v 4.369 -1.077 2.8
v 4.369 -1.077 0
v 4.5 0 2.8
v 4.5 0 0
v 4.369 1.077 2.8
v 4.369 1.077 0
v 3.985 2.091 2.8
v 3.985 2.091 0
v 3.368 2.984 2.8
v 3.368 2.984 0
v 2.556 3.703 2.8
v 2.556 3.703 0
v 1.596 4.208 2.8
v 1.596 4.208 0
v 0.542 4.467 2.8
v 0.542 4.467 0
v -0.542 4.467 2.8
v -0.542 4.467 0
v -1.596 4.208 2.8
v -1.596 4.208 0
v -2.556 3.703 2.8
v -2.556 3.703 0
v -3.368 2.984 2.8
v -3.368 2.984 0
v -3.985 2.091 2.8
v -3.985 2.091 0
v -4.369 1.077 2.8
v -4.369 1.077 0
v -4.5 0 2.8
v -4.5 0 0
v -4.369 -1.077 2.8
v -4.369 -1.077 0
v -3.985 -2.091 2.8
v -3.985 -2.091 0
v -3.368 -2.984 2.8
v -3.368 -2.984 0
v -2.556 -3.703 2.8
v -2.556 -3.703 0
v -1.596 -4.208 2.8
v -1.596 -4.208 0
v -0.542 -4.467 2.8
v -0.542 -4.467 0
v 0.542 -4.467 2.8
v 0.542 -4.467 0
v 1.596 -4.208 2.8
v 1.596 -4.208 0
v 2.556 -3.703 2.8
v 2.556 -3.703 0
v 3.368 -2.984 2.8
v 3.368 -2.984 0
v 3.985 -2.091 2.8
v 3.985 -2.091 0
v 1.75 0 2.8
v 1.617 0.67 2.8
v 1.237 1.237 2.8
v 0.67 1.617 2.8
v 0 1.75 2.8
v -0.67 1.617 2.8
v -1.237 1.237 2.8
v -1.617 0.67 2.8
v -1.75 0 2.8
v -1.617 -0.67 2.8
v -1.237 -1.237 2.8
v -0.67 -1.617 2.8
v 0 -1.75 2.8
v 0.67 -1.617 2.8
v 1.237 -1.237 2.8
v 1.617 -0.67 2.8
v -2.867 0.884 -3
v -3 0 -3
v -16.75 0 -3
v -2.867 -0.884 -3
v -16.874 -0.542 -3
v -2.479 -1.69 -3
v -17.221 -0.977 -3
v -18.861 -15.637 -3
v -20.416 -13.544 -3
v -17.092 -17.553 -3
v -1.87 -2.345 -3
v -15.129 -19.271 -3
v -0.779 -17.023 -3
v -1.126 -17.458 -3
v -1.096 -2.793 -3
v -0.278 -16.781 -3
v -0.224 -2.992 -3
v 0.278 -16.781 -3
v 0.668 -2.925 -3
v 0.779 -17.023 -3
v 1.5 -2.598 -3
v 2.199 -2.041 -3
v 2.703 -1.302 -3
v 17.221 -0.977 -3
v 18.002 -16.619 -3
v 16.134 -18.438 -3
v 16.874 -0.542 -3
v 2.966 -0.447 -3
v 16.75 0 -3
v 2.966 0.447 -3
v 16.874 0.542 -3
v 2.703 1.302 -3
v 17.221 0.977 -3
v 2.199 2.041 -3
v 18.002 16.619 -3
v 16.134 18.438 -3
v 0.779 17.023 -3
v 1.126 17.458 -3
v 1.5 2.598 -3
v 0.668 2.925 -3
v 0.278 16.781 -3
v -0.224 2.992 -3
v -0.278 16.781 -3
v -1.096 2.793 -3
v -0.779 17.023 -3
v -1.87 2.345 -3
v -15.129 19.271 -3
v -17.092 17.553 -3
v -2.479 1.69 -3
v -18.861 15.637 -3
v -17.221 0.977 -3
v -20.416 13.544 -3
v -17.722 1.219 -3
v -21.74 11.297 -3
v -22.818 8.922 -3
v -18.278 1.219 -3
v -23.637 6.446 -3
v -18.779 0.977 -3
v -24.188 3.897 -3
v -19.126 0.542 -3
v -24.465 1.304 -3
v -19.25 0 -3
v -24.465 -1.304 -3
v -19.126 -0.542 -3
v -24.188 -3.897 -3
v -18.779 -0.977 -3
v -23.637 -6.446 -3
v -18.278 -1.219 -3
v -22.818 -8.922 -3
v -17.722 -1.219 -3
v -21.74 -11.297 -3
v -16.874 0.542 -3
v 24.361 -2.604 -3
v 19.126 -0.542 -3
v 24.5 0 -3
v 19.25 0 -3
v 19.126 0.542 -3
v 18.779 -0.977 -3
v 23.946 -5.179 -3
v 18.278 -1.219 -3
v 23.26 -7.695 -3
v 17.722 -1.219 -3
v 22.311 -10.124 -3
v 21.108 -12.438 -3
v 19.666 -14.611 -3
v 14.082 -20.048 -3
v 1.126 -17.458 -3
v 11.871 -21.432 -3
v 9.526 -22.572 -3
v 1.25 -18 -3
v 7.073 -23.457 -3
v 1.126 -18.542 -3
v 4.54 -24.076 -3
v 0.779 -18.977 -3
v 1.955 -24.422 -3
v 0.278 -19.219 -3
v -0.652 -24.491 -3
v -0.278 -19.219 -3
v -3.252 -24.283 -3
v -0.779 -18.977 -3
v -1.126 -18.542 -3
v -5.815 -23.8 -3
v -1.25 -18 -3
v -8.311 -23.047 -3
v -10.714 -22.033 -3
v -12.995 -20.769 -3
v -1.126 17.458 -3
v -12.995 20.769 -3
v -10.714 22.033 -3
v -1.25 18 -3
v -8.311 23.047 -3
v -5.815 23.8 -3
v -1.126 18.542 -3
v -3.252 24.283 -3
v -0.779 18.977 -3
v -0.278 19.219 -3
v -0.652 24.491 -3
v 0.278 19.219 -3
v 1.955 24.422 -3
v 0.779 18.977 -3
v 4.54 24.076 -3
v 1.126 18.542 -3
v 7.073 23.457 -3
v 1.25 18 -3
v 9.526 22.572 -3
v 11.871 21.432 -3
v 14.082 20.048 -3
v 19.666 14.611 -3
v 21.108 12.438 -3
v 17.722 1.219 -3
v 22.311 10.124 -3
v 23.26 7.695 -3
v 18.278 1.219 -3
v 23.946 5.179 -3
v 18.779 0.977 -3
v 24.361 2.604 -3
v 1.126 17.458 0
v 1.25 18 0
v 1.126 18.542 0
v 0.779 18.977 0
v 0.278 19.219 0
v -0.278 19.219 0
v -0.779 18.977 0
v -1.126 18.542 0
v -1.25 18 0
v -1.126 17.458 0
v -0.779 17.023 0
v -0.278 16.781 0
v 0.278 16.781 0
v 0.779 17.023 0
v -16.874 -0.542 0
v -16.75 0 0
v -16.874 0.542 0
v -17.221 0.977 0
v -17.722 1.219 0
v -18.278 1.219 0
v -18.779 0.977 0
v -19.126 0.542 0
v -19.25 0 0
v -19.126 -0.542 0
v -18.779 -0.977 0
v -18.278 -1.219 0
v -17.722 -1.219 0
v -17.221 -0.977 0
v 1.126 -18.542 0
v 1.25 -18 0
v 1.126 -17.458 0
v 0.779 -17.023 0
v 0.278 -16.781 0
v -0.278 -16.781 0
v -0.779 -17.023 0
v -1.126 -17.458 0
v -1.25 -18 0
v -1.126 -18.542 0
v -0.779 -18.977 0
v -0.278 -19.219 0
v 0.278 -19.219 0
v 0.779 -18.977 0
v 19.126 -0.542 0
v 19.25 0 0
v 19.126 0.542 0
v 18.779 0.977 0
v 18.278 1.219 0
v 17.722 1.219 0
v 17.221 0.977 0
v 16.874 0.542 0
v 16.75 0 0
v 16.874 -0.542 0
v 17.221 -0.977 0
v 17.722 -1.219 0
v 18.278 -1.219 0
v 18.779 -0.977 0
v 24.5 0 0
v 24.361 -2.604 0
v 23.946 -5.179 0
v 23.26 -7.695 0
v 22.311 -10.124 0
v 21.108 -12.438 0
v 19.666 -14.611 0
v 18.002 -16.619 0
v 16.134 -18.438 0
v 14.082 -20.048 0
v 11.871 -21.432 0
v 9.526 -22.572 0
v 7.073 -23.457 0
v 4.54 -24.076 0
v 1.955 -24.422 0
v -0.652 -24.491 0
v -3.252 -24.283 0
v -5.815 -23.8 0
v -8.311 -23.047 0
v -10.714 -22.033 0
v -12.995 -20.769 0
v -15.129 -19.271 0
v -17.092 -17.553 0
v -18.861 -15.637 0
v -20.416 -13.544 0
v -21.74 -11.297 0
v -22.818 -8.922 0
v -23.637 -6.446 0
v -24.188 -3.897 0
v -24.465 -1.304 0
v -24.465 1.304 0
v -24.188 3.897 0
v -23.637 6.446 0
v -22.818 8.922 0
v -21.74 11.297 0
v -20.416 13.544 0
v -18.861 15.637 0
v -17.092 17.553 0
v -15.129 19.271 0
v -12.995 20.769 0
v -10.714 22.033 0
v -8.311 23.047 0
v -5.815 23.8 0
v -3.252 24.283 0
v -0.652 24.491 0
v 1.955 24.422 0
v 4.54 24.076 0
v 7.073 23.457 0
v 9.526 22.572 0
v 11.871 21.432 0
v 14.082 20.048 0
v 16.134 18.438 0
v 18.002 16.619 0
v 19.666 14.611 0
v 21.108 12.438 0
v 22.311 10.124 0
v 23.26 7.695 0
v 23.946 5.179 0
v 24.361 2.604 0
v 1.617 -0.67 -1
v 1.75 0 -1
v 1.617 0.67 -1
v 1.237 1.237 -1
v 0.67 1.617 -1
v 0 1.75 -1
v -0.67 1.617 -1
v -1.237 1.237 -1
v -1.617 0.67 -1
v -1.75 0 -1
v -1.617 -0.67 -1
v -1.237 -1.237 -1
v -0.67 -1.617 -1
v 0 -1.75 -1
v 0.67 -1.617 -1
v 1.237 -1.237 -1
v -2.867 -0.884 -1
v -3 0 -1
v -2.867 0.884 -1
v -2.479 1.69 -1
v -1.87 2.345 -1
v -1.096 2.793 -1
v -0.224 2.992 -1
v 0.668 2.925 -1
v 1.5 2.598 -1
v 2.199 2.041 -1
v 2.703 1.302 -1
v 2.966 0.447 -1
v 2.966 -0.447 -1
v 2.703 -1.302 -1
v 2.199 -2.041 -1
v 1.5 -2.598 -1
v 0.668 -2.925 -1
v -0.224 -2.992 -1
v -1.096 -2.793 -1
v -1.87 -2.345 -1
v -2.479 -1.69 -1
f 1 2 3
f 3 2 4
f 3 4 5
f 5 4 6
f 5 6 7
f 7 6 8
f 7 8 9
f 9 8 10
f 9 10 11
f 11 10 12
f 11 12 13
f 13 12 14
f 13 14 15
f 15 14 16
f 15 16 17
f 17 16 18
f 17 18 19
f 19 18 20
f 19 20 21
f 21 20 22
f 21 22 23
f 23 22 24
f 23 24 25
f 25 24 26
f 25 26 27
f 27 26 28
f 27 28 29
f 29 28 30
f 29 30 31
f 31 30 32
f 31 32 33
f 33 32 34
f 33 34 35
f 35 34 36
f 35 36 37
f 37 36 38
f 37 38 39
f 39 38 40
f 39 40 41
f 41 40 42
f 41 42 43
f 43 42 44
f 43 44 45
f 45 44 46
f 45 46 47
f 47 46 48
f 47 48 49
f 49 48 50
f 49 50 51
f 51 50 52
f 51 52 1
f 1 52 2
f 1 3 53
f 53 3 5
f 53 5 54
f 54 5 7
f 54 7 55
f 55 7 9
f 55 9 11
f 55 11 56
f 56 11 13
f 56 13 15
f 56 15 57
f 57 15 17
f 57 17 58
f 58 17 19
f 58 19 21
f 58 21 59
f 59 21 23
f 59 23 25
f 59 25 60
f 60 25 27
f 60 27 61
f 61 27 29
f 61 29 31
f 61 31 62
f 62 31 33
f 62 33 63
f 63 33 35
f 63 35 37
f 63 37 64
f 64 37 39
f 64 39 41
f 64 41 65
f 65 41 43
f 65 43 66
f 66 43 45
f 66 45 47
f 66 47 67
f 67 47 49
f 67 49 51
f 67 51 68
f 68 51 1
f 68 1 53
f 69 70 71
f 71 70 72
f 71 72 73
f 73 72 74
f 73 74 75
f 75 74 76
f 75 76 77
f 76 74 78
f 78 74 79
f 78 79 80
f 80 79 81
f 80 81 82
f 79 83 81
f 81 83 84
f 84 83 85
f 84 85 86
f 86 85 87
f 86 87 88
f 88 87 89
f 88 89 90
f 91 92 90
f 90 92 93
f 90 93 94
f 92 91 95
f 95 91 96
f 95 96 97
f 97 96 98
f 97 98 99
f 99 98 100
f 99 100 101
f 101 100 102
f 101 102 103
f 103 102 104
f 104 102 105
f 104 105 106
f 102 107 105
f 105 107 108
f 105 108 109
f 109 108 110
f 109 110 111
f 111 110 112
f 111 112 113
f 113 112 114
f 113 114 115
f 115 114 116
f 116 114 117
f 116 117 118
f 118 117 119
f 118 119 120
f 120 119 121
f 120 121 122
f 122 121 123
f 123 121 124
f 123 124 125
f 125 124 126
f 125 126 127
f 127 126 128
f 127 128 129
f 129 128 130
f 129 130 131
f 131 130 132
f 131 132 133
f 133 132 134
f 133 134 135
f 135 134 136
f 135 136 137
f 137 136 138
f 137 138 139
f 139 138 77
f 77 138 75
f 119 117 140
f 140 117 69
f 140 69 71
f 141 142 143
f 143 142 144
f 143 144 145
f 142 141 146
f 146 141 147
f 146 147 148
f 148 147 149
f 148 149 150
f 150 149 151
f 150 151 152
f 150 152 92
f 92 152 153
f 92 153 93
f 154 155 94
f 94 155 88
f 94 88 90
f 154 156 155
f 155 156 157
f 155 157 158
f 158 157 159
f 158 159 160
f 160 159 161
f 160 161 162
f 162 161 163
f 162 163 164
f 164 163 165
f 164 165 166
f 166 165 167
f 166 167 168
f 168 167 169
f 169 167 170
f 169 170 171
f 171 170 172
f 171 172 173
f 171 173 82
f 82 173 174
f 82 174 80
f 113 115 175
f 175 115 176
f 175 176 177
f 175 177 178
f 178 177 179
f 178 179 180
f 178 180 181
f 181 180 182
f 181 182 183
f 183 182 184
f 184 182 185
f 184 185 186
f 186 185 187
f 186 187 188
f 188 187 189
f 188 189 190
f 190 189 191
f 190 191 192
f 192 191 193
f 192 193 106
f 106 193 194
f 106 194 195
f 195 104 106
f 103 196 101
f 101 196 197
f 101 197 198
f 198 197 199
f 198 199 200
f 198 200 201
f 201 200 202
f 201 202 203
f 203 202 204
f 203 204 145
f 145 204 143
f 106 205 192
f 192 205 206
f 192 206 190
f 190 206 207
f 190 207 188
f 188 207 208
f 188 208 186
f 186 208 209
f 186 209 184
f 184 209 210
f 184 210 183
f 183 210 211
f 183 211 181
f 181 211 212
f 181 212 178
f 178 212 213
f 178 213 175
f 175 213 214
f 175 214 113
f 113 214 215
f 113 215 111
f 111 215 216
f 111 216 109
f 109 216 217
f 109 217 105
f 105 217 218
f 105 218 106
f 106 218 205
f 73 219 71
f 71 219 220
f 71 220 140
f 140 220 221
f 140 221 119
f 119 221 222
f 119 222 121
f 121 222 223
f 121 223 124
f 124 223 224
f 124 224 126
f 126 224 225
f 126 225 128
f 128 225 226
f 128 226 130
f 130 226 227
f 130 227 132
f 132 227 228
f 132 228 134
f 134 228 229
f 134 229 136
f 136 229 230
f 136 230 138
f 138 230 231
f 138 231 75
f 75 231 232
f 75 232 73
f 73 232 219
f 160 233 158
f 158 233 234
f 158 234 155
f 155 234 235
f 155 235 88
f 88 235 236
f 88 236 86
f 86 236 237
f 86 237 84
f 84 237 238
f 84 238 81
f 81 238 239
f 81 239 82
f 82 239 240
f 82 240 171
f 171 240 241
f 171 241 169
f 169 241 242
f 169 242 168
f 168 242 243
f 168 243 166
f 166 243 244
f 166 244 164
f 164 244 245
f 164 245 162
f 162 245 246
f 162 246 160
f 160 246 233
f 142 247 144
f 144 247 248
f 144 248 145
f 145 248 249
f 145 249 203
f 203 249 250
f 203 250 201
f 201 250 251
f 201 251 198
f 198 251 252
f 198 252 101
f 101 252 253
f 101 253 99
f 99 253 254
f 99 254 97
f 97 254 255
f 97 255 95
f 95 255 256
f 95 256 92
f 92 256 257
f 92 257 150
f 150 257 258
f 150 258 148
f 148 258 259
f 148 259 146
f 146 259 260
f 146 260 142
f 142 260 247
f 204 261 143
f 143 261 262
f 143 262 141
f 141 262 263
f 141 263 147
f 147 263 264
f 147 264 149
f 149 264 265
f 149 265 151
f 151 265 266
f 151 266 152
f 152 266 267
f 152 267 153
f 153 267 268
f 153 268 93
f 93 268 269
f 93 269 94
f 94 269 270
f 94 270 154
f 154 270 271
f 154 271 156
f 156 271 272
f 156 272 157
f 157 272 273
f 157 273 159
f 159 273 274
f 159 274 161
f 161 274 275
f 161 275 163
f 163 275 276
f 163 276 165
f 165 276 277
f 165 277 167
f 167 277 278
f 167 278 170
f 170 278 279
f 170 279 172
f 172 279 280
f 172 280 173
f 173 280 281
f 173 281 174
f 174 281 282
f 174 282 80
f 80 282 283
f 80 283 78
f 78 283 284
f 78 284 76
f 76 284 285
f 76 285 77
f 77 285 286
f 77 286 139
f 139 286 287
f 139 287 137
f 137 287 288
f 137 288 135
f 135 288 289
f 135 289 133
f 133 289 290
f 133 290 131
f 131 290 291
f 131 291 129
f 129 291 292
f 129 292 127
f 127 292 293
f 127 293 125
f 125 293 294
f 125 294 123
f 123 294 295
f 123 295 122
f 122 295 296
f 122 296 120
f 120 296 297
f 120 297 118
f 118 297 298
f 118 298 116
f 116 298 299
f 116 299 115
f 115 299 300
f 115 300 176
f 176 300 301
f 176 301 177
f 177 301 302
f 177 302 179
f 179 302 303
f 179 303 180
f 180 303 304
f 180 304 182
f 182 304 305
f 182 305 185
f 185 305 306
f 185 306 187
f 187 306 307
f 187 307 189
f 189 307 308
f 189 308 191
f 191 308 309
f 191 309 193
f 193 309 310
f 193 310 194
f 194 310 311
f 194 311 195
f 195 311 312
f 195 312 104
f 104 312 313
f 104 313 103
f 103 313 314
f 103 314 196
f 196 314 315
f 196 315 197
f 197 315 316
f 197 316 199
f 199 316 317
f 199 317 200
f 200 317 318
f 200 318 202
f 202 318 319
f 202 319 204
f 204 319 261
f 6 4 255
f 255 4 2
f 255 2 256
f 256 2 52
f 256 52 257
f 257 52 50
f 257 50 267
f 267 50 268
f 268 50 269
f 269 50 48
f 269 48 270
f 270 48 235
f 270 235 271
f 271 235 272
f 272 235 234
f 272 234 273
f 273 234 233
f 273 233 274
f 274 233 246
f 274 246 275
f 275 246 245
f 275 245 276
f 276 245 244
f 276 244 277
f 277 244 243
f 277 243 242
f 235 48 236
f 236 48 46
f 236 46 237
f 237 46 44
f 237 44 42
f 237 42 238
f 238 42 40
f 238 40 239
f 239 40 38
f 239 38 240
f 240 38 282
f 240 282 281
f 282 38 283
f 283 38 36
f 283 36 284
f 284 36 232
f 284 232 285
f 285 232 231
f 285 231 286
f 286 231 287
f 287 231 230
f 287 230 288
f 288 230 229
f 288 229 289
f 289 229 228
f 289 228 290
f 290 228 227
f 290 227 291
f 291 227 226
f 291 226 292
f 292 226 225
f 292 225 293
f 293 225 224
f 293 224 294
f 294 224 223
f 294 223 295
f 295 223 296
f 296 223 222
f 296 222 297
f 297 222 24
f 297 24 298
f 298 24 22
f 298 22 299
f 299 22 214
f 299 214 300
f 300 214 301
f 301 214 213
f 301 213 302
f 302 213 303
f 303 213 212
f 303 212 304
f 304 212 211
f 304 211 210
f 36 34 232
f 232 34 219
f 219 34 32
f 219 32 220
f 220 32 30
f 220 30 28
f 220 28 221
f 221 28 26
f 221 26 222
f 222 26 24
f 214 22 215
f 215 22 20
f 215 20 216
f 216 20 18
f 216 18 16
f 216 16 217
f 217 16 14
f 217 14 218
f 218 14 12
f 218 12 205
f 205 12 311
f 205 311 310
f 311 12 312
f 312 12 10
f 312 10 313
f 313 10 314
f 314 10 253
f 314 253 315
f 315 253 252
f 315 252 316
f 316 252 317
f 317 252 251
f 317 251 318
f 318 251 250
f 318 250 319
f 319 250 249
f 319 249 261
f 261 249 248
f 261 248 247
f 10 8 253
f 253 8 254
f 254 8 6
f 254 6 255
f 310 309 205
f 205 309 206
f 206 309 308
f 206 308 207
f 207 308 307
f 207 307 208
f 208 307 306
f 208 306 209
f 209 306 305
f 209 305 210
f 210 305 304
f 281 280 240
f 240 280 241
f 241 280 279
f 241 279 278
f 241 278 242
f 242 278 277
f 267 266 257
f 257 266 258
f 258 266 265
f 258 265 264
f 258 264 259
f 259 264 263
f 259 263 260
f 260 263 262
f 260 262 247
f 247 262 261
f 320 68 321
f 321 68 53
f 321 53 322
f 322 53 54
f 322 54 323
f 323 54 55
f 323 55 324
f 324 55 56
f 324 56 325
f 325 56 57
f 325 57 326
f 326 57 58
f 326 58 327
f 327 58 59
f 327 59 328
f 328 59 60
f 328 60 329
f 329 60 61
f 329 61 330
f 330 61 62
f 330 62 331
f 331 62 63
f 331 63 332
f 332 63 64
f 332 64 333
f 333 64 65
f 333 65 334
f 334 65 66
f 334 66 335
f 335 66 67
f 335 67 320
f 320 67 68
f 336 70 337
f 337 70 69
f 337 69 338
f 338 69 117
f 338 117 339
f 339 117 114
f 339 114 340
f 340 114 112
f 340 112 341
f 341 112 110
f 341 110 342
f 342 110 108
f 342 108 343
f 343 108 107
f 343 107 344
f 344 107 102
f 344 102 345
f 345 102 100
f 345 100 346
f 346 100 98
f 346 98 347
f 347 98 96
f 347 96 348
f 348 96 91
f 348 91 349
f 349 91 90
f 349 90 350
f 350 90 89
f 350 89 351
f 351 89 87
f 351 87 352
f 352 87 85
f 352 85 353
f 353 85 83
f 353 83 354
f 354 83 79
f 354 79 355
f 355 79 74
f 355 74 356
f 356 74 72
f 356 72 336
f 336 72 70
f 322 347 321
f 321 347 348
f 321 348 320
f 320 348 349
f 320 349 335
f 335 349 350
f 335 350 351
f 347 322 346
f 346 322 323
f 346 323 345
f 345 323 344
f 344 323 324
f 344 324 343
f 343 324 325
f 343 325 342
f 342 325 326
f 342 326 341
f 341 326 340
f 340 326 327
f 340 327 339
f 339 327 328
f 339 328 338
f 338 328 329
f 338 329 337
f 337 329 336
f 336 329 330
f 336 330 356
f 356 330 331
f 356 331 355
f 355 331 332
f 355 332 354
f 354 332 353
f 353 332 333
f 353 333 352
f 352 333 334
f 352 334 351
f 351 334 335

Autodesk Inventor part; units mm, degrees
ref_plane "YZ Plane" through (0, 0, 0) normal (1, 0, 0) x (0, 1, 0)
ref_plane "XZ Plane" through (0, 0, 0) normal (0, 1, 0) x (-1, 0, 0)
ref_plane "XY Plane" through (0, 0, 0) normal (0, 0, 1) x (1, 0, 0)
sketch "스케치1" plane through (0, 0, 0) normal (0, 0, 1) x (1, 0, 0)
  circle A0 centre (0, 0) radius 24.5
  circle A1 centre (0, 0) radius 4.5
  circle A2 centre (0, 0) radius 1.75
  circle A3 centre (0, 18) radius 1.25
  circle A4 centre (-18, 0) radius 1.25
  circle A5 centre (0, -18) radius 1.25
  circle A6 centre (18, 0) radius 1.25
  dimension "d0" = 49
  dimension "d1" = 9
  dimension "d2" = 3.5
  dimension "d7" = 2.5
  dimension "d8" = 18
  dimension "d11" = 360
extrude "돌출1" add sketch "스케치1" against normal blind 3 contours A0 | A1
extrude "돌출2" add sketch "스케치1" along normal blind 2.8 contours A1
sketch "스케치2" plane through (0, 0, -3) normal (0, 0, -1) x (-1, 0, 0)
  circle A0 centre (0, 0) radius 3
  dimension "d13" = 6
extrude "돌출3" cut sketch "스케치2" against normal blind 2
properties part number "좌측 축"
